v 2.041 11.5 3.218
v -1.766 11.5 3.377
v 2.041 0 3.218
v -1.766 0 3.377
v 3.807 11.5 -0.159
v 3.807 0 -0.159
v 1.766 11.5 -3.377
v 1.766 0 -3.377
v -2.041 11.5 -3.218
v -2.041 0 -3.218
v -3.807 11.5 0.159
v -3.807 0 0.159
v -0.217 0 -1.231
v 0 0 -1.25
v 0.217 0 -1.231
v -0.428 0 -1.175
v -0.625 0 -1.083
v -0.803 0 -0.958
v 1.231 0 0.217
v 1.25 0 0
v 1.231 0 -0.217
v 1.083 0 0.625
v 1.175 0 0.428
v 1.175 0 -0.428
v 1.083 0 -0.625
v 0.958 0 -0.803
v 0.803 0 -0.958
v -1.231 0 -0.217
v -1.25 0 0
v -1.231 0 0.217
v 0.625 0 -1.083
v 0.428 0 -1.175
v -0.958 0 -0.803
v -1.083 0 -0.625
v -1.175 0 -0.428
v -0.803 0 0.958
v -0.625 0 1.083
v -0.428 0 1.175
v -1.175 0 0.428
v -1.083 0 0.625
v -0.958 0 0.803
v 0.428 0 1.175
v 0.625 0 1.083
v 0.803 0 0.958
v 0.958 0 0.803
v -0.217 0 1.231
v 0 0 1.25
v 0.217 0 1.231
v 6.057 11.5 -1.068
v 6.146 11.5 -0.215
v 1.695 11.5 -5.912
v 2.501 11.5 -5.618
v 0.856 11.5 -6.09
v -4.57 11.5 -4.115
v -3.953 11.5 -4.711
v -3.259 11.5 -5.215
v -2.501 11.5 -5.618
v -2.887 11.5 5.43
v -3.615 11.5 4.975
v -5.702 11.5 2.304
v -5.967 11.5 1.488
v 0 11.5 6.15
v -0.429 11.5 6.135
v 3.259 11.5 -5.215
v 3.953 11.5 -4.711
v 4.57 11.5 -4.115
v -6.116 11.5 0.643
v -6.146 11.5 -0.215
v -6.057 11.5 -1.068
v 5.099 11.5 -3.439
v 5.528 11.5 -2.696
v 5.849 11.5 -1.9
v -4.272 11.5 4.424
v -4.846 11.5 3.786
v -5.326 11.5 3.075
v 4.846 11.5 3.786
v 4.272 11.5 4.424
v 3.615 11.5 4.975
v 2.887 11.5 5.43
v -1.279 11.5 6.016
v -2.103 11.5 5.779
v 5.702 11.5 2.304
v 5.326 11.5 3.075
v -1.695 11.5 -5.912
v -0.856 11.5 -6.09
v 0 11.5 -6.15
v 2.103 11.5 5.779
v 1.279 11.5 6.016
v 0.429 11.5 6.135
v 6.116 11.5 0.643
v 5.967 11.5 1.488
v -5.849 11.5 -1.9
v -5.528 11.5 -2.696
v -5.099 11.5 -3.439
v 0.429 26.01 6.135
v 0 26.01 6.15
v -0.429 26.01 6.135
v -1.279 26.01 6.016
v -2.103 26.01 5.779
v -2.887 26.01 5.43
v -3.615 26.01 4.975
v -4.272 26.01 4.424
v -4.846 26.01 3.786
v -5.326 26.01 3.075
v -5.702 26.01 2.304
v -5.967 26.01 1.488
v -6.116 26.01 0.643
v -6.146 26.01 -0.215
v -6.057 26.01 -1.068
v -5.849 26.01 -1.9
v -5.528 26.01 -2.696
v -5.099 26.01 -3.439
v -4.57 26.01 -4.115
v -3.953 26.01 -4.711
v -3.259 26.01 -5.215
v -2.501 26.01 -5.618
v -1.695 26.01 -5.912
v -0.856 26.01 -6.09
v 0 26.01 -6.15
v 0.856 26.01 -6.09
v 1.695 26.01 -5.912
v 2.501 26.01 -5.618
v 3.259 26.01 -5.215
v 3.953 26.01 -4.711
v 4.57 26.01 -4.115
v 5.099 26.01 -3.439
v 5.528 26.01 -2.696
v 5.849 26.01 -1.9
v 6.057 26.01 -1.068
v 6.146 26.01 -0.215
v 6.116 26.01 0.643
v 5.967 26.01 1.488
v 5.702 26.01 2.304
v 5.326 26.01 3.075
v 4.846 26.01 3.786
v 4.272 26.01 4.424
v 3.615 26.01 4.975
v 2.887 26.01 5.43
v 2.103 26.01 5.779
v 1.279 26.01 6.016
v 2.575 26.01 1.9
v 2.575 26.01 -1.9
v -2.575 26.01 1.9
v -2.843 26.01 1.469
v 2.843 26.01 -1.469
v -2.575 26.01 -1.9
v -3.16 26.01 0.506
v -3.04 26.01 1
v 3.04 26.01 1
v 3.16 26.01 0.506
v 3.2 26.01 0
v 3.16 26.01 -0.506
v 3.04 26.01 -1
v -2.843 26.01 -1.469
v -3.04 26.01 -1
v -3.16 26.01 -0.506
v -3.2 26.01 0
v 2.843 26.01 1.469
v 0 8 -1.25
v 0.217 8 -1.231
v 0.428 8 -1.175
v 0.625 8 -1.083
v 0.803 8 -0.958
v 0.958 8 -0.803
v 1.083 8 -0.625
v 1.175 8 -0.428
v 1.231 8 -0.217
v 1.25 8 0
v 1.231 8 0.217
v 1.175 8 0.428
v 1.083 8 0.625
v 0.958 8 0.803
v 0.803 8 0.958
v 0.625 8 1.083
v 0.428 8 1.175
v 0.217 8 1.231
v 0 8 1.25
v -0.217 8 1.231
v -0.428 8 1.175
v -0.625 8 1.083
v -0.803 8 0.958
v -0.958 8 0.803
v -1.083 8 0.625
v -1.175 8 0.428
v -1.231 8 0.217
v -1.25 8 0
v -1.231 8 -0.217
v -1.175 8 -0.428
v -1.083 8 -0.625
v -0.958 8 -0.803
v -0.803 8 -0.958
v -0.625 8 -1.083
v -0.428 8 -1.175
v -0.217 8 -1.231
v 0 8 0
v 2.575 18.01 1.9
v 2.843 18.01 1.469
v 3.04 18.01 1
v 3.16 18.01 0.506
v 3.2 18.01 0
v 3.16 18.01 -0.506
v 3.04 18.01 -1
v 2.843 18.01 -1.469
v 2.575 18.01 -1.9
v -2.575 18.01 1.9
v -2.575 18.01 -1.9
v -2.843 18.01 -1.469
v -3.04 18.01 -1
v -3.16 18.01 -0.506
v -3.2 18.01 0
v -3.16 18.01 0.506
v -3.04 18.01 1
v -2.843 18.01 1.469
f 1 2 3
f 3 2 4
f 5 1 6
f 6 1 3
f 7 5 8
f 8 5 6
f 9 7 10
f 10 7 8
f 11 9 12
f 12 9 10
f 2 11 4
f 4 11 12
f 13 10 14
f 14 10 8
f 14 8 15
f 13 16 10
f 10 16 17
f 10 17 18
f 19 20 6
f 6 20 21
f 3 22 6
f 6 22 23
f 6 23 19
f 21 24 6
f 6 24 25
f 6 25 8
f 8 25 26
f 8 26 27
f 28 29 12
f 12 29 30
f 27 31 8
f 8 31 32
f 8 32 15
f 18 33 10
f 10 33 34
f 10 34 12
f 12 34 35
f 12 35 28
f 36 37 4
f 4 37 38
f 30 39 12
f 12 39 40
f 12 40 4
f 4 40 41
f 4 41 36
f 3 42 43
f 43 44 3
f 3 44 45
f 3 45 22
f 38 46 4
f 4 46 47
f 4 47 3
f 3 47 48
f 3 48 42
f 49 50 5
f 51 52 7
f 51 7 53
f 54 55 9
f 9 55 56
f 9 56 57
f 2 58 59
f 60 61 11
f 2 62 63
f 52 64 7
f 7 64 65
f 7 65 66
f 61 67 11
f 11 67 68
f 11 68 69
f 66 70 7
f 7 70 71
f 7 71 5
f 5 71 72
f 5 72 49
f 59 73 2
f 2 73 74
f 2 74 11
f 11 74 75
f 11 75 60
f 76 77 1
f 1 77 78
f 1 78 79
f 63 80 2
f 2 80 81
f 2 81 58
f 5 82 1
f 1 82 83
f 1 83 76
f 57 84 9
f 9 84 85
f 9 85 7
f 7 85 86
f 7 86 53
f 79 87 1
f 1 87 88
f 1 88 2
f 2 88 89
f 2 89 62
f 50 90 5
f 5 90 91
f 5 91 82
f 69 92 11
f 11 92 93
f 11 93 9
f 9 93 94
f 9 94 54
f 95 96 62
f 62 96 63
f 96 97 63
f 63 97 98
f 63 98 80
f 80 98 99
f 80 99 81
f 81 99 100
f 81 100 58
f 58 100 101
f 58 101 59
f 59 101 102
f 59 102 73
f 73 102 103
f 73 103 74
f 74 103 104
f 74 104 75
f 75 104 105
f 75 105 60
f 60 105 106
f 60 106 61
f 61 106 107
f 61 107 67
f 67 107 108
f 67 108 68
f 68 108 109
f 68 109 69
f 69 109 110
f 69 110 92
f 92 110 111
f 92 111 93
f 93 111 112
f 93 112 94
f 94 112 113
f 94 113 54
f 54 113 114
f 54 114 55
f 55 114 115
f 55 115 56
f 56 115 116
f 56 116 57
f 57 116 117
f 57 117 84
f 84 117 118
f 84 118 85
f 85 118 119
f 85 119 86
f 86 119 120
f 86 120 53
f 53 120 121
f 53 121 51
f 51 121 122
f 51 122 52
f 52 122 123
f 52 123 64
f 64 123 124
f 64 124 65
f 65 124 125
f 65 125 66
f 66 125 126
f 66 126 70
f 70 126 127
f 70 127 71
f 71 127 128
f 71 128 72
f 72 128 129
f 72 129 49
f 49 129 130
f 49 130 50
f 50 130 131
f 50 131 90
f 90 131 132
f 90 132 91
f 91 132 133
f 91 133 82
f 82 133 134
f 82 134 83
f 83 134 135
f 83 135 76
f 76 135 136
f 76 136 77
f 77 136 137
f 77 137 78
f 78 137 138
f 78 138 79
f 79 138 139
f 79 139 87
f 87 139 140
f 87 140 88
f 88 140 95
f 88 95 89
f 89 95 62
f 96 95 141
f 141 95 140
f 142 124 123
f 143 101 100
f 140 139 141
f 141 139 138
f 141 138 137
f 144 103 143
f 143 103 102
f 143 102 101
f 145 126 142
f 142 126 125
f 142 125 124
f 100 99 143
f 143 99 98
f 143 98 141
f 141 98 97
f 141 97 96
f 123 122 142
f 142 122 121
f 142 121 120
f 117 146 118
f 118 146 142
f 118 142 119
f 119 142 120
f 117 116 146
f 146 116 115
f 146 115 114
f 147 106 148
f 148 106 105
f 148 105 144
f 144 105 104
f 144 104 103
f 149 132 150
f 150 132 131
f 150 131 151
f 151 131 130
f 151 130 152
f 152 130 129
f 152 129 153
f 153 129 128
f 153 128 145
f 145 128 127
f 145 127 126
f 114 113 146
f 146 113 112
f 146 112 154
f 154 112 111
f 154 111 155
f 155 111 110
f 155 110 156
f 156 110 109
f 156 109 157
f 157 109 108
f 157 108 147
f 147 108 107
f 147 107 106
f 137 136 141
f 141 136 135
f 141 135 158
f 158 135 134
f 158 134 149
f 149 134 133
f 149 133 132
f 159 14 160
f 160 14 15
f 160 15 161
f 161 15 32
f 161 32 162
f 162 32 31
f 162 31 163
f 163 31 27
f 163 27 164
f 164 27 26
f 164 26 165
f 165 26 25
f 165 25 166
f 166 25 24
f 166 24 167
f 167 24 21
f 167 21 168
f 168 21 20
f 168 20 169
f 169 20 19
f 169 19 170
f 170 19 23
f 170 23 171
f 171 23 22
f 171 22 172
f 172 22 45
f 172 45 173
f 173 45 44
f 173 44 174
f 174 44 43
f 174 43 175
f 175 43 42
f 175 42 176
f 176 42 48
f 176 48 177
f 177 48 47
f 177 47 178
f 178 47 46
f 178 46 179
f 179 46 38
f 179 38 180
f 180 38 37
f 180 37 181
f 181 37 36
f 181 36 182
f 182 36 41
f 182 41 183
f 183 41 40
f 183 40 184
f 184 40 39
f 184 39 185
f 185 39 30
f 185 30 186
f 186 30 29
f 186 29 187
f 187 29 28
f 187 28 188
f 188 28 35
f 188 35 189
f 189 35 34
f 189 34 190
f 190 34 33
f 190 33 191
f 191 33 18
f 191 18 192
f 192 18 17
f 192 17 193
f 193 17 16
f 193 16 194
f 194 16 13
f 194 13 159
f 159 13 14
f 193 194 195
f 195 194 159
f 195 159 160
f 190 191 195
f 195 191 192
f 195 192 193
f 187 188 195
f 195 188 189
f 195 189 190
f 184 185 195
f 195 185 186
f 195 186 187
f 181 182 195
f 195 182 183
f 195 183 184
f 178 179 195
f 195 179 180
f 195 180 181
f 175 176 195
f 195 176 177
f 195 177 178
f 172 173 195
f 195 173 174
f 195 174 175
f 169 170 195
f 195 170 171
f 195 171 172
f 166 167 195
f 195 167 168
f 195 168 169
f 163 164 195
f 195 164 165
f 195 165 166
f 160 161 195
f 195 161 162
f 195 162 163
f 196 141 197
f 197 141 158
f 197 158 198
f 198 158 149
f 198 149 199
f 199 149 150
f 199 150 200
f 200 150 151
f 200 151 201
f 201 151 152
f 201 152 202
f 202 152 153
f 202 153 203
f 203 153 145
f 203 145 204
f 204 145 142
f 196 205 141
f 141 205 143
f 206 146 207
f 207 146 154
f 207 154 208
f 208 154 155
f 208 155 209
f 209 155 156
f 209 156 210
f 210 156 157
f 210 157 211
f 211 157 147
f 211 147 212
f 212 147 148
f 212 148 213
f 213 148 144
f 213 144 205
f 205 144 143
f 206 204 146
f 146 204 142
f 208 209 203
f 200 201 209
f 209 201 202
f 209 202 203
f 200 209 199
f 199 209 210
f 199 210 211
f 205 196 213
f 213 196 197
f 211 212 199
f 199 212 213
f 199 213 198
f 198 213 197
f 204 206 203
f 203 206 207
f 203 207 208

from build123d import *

# Parameters (mm, degrees)
SALIENTE_EXTRUIR1_DEPTH = 11.5
CROQUIS2_R              = 6.15
SALIENTE_EXTRUIR2_DEPTH = 14.51
CROQUIS3_R              = 1.25
CORTAR_EXTRUIR1_DEPTH   = 8
CORTAR_EXTRUIR2_DEPTH   = 8


with BuildPart() as part:
    # Croquis1 → Saliente-Extruir1 (new body)
    with BuildSketch(Plane(origin=(0, 0, 0), x_dir=(1, 0, 0), z_dir=(0, 1, 0))):
        Polygon((2.041290993, -3.217628176), (3.807193237, 0.158995769), (1.765902244, 3.376623945), (-2.041290993, 3.217628176), (-3.807193237, -0.158995769), (-1.765902244, -3.376623945), align=None)
    extrude(amount=SALIENTE_EXTRUIR1_DEPTH)

    # Croquis2 → Saliente-Extruir2 (add)
    with BuildSketch(Plane(origin=(0, 11.5, 0), x_dir=(1, 0, 0), z_dir=(0, 1, 0))):
        with Locations(Location((0, 0, 0), (0, 0, 270))):
            Circle(CROQUIS2_R)
    extrude(amount=SALIENTE_EXTRUIR2_DEPTH)

    # Croquis3 → Cortar-Extruir1 (cut)
    with BuildSketch(Plane.XZ):
        with Locations(Location((0, 0, 0), (0, 0, 270))):
            Circle(CROQUIS3_R)
    extrude(amount=-CORTAR_EXTRUIR1_DEPTH, mode=Mode.SUBTRACT)

    # Croquis4 → Cortar-Extruir2 (cut)
    with BuildSketch(Plane(origin=(0, 26.01, 0), x_dir=(1, 0, 0), z_dir=(0, 1, 0))):
        with BuildLine():
            Line((-2.574878638, 1.9), (2.574878638, 1.9))
            ThreePointArc((2.574878638, 1.9), (3.2, 0), (2.574878638, -1.9))
            Line((2.574878638, -1.9), (-2.574878638, -1.9))
            ThreePointArc((-2.574878638, -1.9), (-3.2, 0), (-2.574878638, 1.9))
        make_face()
    extrude(amount=-CORTAR_EXTRUIR2_DEPTH, mode=Mode.SUBTRACT)


solid = part.part
